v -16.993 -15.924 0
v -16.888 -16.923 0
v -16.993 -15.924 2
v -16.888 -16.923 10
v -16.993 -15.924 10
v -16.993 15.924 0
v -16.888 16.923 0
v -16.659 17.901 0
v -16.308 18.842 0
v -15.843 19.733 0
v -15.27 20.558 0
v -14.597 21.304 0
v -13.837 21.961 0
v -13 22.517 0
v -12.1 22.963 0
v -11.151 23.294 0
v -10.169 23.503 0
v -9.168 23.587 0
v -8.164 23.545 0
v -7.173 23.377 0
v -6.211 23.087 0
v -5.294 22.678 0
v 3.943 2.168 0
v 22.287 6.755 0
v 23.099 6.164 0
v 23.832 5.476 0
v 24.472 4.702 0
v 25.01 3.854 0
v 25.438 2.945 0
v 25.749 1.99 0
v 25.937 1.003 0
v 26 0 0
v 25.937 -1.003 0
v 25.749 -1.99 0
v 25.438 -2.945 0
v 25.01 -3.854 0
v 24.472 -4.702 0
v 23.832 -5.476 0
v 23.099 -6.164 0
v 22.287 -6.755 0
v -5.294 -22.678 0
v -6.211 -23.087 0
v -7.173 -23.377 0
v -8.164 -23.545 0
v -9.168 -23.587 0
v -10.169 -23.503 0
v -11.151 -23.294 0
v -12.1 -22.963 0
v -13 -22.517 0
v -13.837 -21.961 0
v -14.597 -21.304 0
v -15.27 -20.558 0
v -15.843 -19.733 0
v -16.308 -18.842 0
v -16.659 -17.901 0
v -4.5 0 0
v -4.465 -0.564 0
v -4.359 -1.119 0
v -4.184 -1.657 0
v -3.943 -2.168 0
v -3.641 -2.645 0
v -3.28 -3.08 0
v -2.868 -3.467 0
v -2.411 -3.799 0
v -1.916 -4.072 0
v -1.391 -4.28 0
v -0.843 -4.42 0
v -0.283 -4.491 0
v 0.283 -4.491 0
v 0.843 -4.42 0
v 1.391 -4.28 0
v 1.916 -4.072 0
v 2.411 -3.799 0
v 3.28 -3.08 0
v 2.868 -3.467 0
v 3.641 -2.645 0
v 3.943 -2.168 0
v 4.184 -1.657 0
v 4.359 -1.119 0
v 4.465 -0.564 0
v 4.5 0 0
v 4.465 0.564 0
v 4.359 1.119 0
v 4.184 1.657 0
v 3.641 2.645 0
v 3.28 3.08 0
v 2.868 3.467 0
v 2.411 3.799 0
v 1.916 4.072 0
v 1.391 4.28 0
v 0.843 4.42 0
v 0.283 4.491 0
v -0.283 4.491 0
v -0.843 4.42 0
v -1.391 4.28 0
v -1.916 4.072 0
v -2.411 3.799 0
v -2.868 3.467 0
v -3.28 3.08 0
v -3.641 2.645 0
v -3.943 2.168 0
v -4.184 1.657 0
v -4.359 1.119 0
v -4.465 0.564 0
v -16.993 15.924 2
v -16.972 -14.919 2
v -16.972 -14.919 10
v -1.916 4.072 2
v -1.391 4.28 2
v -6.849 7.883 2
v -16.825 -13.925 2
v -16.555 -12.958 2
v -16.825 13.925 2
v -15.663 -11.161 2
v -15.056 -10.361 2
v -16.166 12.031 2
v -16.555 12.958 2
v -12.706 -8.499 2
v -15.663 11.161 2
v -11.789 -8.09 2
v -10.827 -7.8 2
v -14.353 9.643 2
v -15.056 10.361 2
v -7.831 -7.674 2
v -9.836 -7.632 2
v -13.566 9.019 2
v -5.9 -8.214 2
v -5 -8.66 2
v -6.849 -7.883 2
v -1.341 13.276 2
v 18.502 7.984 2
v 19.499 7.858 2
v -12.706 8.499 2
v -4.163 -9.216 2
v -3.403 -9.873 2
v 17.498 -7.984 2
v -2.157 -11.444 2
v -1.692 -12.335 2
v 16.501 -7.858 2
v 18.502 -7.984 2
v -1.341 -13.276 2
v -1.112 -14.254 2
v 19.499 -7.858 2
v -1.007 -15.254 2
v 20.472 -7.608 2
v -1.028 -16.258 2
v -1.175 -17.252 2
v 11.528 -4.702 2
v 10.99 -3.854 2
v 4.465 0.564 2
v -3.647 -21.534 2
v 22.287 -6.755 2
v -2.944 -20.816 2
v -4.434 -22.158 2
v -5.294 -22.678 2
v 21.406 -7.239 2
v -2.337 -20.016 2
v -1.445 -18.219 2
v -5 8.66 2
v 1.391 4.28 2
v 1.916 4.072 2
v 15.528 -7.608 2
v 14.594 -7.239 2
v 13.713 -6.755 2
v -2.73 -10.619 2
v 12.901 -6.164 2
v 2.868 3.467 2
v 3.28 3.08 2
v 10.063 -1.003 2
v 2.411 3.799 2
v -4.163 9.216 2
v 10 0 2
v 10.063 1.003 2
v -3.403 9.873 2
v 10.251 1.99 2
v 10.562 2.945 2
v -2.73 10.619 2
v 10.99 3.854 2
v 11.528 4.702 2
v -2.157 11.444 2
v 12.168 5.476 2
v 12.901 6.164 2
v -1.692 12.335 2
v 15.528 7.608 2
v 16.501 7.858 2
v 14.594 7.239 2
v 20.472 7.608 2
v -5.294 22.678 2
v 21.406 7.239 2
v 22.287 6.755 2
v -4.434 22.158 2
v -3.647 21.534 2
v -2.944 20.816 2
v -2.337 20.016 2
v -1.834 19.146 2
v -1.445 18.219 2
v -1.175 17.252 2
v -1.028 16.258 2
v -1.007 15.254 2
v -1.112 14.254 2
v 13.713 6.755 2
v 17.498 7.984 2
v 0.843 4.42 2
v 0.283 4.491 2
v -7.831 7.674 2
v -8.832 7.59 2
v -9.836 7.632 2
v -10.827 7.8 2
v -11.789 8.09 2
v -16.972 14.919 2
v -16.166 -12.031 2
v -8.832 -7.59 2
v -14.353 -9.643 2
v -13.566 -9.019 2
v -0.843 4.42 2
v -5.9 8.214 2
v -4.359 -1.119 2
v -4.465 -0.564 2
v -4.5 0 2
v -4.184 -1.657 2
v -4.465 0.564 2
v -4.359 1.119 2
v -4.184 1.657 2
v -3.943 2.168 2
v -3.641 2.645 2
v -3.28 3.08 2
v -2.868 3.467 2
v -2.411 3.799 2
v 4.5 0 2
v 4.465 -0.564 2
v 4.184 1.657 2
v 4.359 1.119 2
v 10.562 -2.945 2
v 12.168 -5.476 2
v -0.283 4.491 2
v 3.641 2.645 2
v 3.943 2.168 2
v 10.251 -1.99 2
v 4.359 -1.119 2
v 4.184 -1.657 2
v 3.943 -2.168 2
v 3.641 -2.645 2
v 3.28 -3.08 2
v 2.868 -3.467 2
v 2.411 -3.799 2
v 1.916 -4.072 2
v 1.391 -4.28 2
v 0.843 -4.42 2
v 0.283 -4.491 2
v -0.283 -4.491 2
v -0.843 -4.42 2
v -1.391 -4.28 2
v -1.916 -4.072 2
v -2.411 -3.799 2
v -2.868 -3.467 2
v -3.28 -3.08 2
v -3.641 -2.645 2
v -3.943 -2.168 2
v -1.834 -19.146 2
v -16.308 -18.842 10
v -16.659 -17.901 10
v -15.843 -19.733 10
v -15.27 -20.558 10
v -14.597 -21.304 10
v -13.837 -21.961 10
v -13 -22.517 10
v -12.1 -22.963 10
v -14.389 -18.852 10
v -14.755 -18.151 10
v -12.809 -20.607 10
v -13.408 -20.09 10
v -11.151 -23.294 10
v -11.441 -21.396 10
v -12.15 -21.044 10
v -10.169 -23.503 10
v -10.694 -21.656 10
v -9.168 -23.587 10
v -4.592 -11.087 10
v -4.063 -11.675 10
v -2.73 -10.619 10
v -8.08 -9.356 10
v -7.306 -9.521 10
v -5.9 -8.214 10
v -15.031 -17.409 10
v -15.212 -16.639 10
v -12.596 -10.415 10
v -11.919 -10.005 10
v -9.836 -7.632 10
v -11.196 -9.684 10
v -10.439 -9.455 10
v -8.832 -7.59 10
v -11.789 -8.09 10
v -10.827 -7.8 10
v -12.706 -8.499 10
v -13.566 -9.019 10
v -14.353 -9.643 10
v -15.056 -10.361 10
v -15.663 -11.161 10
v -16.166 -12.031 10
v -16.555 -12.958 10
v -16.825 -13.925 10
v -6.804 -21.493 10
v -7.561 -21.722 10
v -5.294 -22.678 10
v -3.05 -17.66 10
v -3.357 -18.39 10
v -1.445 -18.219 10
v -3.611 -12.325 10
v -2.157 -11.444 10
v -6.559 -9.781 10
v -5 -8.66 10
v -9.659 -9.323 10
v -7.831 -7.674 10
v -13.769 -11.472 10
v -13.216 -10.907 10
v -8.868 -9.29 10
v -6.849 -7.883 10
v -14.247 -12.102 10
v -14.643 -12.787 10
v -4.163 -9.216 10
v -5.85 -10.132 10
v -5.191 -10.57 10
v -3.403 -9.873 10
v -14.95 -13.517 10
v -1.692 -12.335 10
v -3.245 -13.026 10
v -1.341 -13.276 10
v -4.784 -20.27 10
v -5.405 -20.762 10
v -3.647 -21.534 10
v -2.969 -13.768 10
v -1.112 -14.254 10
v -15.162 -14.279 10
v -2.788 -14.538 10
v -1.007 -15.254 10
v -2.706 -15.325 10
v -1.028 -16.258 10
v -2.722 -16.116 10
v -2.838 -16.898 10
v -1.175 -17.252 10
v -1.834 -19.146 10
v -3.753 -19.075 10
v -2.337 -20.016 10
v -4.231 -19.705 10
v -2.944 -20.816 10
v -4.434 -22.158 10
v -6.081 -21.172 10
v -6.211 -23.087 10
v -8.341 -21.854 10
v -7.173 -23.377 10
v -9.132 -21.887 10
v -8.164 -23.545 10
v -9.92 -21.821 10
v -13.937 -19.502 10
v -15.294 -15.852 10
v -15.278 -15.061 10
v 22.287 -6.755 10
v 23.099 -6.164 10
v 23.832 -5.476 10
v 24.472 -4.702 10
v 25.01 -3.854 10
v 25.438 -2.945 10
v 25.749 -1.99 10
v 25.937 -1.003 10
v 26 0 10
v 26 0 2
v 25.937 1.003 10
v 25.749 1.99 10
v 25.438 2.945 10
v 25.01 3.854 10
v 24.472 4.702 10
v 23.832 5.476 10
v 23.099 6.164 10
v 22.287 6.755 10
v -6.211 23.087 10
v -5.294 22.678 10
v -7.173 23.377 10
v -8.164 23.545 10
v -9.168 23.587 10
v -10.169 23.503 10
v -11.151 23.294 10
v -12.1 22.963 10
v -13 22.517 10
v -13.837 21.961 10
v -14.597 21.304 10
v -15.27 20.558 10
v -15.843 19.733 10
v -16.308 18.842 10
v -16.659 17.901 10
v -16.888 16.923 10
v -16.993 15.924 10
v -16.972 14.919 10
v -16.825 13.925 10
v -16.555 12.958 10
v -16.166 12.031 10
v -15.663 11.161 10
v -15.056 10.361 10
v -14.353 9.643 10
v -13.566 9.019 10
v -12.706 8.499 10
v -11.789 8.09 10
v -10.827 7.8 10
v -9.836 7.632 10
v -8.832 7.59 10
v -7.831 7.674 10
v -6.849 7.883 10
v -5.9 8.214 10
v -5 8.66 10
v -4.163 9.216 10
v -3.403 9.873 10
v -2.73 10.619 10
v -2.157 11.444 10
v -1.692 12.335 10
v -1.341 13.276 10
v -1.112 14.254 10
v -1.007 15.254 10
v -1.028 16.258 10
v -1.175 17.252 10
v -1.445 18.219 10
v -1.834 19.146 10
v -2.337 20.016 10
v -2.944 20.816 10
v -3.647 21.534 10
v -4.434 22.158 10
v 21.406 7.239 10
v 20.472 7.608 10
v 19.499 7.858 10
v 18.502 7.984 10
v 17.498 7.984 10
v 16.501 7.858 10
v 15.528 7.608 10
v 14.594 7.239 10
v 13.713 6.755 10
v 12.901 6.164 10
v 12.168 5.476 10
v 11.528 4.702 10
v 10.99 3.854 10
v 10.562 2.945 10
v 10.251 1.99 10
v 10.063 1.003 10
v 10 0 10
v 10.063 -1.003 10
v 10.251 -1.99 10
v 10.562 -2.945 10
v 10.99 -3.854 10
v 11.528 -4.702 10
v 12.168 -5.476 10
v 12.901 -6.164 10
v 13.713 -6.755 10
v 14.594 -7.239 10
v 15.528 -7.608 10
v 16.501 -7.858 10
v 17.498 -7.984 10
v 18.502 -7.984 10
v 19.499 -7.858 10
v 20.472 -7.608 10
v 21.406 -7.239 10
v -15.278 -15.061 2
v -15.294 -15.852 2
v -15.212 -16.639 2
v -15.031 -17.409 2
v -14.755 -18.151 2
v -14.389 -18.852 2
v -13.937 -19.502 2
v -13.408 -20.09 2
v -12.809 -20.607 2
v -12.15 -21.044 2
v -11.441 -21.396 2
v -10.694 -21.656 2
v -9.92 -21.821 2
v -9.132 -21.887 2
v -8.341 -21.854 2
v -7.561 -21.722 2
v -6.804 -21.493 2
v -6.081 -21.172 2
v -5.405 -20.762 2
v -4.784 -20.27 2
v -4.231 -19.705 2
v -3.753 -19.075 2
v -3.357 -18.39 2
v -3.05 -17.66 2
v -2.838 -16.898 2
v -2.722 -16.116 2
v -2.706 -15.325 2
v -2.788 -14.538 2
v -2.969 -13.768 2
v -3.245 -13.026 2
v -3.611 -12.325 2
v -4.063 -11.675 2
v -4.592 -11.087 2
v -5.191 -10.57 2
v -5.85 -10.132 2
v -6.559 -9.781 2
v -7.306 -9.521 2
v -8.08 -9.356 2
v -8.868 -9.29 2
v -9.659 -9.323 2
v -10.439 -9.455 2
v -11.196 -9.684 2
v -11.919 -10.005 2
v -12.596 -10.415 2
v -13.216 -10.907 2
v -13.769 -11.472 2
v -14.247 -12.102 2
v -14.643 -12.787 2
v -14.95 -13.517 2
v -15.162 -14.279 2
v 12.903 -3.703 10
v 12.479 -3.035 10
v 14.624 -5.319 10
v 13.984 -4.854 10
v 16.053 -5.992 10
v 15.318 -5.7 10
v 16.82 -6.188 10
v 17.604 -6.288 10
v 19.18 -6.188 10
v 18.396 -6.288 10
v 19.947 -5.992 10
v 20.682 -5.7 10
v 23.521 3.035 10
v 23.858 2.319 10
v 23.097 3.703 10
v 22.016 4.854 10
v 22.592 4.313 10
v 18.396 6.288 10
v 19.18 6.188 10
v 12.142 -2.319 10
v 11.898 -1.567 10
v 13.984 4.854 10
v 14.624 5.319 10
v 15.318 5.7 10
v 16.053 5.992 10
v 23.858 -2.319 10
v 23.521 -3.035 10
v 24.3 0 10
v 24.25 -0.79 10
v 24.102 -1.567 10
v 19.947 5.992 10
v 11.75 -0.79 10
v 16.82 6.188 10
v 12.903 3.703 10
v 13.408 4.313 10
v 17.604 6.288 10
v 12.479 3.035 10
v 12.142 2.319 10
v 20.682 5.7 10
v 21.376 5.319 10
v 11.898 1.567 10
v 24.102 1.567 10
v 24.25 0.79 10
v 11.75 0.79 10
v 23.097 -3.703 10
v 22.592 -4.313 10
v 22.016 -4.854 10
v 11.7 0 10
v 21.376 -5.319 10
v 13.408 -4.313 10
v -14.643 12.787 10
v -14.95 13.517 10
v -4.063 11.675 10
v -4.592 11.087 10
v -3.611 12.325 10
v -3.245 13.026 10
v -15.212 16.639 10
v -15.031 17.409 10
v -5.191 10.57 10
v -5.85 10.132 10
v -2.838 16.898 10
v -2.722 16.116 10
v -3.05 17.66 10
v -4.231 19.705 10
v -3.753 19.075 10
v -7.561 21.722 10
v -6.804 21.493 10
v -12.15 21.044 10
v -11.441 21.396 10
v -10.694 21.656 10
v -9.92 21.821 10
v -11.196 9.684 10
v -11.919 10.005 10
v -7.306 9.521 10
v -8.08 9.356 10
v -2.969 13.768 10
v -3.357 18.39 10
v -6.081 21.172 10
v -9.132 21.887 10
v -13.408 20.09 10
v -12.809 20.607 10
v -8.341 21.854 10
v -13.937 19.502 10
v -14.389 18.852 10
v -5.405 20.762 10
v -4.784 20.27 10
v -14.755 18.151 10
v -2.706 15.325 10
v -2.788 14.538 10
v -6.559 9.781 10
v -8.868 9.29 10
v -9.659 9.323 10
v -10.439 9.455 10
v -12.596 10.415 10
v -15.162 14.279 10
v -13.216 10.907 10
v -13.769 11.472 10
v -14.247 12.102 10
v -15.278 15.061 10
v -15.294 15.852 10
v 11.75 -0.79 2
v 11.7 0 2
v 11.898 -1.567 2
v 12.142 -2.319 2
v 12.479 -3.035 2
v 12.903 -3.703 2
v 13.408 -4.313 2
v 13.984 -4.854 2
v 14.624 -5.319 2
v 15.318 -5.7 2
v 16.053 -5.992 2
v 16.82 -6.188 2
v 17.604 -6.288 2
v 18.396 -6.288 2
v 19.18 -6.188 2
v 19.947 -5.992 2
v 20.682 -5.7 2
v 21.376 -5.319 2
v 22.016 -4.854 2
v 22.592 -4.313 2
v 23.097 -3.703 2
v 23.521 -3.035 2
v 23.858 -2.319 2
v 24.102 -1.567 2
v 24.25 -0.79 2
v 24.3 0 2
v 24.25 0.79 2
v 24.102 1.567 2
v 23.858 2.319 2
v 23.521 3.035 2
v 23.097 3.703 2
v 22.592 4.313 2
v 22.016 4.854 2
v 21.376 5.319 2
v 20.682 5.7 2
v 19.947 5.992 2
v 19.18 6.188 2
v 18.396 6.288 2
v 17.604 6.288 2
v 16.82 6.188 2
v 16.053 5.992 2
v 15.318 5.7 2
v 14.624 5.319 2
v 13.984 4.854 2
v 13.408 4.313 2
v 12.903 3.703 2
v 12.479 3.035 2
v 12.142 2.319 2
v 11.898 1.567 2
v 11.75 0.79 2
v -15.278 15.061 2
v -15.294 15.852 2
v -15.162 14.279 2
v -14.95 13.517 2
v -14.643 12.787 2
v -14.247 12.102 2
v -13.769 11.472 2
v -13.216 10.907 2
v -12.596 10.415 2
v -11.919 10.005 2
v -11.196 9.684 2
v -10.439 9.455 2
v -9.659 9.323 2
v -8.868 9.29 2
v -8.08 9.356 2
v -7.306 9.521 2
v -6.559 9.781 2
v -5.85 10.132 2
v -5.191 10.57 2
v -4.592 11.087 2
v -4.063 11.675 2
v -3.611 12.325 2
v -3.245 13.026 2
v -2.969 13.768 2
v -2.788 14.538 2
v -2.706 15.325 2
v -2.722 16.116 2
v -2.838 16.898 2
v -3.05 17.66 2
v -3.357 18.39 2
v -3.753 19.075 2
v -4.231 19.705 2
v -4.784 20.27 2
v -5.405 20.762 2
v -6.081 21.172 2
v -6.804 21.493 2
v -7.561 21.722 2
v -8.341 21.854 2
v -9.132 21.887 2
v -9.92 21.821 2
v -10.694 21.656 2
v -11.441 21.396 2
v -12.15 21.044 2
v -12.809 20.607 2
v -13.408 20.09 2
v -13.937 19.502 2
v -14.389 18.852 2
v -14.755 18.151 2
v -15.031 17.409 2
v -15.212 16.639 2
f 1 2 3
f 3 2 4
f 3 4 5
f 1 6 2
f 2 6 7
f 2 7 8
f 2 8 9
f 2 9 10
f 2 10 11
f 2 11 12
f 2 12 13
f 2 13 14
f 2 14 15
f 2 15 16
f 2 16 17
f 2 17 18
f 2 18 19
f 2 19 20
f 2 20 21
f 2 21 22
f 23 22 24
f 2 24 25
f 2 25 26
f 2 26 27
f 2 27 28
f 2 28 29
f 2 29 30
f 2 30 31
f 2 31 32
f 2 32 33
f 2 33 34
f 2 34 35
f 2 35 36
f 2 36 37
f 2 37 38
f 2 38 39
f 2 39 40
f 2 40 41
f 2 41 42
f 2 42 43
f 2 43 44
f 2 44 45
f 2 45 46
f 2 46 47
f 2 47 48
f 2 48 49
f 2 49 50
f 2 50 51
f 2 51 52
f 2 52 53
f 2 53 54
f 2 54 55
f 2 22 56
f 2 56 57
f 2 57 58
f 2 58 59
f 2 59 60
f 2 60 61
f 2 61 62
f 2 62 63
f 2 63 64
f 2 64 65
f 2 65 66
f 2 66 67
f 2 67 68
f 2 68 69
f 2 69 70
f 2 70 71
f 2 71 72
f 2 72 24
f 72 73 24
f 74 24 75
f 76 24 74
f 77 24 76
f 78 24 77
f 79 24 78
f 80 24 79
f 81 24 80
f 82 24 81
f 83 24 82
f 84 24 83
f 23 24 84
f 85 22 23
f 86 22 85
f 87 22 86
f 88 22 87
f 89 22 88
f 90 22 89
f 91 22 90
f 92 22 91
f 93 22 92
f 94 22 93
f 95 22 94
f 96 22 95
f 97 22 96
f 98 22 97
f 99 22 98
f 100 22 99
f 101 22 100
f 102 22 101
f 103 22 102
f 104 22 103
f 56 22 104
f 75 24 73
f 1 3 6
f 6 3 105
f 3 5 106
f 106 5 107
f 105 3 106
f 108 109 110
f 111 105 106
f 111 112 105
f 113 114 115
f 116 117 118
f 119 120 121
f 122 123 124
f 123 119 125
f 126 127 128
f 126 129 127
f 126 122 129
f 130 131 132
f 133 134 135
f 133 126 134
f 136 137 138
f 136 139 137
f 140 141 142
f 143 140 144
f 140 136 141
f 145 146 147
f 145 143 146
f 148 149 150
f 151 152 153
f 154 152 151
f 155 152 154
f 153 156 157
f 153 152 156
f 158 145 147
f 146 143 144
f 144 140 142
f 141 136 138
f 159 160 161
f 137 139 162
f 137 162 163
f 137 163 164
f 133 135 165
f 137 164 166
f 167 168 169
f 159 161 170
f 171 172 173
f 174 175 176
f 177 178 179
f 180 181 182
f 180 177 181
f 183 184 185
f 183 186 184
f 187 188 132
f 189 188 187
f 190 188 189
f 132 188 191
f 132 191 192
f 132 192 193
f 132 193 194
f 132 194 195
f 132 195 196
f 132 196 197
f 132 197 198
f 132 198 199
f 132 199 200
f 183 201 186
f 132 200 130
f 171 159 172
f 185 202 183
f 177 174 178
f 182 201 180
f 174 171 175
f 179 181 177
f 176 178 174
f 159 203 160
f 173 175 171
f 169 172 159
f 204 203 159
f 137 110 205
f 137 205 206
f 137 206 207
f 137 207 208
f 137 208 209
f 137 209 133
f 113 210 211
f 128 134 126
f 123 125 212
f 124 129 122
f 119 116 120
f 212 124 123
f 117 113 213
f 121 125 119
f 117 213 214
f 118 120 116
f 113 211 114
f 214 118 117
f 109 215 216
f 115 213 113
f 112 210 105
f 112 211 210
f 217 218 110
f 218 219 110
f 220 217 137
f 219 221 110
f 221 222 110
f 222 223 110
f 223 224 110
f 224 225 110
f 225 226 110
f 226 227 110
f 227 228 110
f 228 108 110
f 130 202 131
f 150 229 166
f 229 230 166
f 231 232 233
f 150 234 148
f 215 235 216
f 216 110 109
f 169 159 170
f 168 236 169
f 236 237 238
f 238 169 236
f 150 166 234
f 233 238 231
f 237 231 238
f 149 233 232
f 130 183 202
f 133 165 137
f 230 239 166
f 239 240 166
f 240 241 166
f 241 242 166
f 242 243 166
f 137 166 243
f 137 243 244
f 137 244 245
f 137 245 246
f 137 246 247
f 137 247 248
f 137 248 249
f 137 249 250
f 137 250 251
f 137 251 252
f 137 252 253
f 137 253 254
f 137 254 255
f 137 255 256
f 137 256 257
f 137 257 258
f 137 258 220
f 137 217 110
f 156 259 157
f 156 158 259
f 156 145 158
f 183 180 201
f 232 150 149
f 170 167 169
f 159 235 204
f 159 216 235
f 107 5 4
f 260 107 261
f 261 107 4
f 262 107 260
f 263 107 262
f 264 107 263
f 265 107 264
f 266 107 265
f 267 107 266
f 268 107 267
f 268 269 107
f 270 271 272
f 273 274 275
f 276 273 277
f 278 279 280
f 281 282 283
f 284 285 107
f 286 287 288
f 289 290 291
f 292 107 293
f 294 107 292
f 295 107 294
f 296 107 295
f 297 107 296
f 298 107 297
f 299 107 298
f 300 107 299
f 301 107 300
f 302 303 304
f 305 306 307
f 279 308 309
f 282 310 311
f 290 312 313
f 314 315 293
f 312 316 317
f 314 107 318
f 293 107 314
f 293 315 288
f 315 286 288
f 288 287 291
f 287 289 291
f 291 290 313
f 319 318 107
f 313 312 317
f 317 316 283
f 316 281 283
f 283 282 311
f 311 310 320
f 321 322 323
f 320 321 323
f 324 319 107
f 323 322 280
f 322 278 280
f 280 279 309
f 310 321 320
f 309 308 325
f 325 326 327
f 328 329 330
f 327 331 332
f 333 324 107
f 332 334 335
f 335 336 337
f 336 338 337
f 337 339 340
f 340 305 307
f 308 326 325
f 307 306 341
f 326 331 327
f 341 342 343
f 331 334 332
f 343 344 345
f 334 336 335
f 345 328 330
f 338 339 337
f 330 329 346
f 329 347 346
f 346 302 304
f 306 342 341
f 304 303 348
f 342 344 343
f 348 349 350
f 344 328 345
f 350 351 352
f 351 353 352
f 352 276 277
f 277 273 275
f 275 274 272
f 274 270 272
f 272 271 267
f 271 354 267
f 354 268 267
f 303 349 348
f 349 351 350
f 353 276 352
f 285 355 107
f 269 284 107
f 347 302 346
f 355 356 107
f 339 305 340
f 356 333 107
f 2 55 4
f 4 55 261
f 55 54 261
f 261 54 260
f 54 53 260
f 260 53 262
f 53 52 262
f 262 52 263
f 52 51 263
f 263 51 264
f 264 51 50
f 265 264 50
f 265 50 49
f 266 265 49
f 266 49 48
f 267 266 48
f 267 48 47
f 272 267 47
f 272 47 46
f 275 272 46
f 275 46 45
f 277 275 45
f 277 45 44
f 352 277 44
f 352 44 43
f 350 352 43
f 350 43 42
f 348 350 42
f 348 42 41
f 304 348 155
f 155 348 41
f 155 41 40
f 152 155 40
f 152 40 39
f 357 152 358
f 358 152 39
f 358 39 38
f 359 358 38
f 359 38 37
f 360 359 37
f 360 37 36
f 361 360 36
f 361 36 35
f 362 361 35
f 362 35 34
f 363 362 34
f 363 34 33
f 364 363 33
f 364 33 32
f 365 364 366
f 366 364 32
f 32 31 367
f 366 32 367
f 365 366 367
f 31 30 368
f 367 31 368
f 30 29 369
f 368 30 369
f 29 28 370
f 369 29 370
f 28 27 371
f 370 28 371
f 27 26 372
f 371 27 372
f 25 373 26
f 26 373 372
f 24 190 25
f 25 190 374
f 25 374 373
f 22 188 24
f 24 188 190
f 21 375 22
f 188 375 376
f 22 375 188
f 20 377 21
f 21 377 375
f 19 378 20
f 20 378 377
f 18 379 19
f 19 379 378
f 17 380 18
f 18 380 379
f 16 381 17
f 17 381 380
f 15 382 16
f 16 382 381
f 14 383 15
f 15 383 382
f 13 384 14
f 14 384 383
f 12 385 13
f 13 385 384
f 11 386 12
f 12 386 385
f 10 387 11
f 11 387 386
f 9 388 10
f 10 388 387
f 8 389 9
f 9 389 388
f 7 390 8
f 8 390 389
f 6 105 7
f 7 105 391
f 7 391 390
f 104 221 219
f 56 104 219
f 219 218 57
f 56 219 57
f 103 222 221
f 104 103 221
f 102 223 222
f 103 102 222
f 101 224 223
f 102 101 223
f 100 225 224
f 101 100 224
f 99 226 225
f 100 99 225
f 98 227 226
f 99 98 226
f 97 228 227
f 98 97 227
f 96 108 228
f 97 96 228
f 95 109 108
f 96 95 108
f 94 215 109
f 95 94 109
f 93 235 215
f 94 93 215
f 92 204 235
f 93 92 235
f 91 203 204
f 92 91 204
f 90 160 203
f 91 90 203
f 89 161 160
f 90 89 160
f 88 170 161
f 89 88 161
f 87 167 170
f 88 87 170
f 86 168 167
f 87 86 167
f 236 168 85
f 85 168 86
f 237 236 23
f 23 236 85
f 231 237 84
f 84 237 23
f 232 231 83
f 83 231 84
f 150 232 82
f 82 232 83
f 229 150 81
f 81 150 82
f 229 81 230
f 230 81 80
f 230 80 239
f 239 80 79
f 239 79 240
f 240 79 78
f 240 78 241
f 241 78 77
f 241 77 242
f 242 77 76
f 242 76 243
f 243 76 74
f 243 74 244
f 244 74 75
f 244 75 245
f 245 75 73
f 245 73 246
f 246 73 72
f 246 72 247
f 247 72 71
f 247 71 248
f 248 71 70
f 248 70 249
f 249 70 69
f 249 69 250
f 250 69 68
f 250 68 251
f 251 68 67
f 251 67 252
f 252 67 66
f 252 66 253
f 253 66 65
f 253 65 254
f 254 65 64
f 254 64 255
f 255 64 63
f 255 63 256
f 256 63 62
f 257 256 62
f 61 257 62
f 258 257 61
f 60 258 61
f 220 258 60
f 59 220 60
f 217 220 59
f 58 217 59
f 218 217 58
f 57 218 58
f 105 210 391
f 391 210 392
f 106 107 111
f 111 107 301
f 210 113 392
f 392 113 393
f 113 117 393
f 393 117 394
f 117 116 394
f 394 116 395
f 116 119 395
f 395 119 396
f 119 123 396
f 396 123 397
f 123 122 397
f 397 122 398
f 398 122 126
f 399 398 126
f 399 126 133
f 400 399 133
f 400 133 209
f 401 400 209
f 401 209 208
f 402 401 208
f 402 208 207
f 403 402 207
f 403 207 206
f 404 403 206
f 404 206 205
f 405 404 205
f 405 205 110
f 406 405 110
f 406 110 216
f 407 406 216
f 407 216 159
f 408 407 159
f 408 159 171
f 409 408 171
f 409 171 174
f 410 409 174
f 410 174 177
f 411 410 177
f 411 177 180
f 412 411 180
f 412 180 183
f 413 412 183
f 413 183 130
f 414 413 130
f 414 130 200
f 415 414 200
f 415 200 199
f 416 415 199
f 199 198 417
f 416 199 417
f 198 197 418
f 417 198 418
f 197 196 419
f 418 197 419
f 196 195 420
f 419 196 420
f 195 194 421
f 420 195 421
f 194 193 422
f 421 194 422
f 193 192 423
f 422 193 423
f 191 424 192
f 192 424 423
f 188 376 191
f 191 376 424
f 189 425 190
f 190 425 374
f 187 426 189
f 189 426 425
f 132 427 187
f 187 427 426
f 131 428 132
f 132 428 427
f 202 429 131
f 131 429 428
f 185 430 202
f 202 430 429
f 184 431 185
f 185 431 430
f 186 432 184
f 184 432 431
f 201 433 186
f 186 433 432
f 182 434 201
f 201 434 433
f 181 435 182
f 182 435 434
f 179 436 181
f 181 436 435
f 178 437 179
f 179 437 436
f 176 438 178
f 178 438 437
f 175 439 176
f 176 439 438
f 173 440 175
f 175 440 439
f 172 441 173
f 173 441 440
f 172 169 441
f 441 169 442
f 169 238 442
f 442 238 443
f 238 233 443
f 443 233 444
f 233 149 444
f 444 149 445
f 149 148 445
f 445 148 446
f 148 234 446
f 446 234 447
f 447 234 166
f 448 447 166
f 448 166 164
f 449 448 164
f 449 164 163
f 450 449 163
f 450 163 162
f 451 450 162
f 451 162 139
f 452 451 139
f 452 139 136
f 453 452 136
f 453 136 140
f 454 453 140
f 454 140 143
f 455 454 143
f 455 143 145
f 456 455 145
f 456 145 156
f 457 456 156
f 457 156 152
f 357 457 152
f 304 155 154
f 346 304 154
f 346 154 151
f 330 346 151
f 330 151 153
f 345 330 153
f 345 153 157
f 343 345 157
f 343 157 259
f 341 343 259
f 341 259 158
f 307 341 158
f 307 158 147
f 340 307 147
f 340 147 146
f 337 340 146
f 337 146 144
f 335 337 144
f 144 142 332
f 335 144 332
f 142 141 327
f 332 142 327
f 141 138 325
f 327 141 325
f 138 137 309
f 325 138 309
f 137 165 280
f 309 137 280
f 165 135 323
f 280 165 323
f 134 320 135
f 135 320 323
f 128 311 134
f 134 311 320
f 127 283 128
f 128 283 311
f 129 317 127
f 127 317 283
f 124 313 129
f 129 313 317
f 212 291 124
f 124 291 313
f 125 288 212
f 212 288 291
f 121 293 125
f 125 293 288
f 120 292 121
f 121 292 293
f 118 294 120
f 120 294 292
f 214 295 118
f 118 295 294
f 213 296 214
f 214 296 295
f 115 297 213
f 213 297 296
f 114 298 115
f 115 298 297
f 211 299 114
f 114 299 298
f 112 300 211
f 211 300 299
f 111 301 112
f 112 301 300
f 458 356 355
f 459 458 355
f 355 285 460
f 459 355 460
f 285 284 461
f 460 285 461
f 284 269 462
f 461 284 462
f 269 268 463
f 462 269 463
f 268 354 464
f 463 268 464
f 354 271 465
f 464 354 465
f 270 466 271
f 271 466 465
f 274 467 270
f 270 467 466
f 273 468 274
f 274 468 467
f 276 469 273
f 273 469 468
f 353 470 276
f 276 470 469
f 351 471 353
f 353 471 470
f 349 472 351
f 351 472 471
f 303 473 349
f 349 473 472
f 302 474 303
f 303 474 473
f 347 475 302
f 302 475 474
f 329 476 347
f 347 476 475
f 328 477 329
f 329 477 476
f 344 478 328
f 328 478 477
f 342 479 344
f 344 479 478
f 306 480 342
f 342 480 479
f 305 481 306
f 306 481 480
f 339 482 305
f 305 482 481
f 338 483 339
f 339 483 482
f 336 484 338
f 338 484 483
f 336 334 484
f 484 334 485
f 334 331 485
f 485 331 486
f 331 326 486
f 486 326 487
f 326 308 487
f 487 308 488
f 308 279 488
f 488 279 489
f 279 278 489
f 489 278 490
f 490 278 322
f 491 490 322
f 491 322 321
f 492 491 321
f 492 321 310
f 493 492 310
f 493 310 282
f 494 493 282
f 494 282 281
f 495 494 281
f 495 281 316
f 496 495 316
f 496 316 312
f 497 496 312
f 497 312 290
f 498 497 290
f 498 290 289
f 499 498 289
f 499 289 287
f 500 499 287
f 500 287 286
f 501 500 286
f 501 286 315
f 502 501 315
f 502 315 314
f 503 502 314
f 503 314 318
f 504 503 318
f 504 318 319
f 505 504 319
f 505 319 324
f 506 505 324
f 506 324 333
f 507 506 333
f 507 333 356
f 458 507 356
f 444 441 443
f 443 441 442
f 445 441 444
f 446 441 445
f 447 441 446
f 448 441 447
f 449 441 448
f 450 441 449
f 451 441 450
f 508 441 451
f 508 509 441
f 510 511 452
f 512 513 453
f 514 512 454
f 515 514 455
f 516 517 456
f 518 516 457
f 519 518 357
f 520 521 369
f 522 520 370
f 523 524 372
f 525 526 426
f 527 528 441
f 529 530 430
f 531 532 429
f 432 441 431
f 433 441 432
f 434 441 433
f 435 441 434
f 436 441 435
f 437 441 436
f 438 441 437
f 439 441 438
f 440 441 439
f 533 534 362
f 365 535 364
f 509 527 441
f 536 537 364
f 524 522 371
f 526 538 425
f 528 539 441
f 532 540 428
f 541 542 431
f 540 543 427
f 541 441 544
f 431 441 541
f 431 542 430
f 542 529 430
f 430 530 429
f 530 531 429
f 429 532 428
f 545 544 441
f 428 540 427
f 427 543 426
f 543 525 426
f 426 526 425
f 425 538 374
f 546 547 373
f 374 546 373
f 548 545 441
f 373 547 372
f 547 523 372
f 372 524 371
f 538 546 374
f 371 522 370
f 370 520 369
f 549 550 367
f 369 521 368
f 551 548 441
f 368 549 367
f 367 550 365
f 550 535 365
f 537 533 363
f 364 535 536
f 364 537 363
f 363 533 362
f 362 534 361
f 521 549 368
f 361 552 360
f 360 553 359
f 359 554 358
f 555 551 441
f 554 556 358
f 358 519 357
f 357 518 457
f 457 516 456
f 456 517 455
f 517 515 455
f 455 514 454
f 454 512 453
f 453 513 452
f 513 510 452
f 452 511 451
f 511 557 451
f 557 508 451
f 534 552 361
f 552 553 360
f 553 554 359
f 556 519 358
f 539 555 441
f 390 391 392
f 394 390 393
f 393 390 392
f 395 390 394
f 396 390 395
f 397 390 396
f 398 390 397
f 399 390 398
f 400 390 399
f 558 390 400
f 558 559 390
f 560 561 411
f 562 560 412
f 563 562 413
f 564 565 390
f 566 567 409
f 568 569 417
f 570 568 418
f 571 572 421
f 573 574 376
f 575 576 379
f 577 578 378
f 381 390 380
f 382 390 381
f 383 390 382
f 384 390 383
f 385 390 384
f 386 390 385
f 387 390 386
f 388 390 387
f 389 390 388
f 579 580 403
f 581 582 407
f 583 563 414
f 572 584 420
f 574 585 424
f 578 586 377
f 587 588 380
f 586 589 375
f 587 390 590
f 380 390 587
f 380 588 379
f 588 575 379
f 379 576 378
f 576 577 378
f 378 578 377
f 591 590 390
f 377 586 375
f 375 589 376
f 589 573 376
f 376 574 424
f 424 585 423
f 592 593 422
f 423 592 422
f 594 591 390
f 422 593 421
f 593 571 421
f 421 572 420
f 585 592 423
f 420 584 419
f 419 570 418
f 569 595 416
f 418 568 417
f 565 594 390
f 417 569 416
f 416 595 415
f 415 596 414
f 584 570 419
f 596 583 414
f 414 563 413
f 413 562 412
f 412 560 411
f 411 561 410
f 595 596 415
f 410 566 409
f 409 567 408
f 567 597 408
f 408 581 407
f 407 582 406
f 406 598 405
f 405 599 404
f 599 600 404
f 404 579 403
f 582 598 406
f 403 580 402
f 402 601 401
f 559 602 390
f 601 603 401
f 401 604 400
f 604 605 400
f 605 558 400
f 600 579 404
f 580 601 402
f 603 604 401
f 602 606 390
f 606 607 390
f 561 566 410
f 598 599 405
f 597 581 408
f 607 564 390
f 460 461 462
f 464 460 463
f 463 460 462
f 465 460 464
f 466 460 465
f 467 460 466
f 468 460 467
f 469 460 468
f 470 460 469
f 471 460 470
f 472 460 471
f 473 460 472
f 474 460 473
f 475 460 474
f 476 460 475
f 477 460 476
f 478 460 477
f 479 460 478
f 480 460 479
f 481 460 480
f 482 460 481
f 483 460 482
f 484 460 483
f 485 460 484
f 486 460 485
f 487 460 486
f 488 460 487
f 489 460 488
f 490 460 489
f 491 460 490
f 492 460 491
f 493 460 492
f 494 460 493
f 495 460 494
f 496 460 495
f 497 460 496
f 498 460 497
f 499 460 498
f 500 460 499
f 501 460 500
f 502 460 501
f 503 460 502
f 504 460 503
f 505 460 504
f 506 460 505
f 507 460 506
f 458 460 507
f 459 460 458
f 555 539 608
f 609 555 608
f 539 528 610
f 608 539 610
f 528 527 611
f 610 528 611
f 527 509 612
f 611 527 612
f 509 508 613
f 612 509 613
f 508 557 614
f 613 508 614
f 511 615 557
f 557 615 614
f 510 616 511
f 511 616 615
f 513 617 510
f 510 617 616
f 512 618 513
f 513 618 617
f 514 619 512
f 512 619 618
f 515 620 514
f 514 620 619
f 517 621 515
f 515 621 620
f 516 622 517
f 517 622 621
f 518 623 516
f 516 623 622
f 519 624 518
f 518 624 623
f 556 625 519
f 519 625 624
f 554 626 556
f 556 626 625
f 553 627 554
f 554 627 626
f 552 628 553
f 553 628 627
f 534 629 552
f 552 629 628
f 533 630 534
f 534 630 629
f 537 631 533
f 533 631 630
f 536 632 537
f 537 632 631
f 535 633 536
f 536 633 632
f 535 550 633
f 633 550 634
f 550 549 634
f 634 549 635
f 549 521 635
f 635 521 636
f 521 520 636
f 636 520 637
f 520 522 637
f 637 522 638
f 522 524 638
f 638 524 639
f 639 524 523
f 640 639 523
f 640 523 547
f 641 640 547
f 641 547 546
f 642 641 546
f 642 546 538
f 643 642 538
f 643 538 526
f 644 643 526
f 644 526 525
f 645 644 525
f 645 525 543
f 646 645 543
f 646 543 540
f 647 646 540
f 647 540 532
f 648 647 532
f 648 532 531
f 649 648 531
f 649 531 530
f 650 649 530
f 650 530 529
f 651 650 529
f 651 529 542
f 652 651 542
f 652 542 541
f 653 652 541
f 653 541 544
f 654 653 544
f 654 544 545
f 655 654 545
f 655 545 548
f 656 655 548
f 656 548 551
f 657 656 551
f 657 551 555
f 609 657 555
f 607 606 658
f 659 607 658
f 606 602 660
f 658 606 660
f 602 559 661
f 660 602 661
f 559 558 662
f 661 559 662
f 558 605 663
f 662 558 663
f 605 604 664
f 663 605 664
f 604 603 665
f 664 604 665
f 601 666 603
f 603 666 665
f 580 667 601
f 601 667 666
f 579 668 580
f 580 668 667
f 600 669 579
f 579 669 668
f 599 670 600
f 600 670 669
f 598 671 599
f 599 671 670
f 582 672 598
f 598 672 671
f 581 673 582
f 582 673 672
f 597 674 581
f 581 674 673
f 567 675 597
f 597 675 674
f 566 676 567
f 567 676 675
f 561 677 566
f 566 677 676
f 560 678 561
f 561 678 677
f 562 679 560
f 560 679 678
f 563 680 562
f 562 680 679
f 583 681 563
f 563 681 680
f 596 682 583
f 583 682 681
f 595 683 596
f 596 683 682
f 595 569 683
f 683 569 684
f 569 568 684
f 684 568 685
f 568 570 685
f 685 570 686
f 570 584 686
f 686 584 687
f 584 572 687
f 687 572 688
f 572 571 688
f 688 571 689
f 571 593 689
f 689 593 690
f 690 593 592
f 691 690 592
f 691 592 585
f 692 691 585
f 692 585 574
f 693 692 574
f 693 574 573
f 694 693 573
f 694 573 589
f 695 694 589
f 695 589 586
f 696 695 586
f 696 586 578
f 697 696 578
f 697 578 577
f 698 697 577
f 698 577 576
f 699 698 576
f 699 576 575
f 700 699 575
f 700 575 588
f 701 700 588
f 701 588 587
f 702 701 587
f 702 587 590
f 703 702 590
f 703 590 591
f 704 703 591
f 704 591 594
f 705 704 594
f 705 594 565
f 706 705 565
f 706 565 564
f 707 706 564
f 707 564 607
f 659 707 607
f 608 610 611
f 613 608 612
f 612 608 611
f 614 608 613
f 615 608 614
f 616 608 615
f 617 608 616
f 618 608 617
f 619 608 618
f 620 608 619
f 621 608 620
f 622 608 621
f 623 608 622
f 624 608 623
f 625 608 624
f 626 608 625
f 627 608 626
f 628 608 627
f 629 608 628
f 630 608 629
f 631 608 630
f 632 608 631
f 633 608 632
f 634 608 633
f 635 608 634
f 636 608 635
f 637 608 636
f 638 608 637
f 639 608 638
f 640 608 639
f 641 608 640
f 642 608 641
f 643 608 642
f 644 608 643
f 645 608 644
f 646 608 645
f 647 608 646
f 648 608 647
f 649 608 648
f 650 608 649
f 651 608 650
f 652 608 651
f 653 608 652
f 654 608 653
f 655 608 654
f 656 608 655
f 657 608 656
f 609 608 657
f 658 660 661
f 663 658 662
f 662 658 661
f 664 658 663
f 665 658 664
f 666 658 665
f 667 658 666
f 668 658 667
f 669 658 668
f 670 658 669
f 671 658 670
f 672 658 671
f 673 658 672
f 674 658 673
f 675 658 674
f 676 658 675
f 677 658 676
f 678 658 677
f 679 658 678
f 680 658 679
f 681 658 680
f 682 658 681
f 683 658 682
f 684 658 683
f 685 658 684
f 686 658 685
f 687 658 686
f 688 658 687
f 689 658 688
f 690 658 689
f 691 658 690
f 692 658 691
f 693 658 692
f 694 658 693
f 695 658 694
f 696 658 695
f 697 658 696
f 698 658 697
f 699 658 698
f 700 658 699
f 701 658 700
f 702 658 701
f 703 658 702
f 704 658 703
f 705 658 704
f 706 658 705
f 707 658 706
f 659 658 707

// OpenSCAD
r_int=28/2;
r_ext=38/2;
h1=2; 
h2=8;

module support_bobine(){
	difference(){
		union(){
			hull(){ //hull de base
				for(i=[0:1:3]){
					rotate([0,0,i*(360/3)])translate([18,0,0]){cylinder(h=h1, r=8, $fn=50);}
				}
			}

			for(i=[0:1:3]){ //emplacement des tubes
				rotate([0,0,i*(360/3)])translate([18,0,h1]){cylinder(h=h2, r=8, $fn=50);}
			}
		}

		for(i=[0:1:3]){ //extrusions pour rentrer de force les tubes
			rotate([0,0,i*(360/3)])translate([18,0,h1]){cylinder(h=h2+5, r=6.3, $fn=50);}
		}
		//trou central de vissage
		translate([0,0,-5]){cylinder(h=20, r=4.5, $fn=50);}
	}

}
support_bobine();
